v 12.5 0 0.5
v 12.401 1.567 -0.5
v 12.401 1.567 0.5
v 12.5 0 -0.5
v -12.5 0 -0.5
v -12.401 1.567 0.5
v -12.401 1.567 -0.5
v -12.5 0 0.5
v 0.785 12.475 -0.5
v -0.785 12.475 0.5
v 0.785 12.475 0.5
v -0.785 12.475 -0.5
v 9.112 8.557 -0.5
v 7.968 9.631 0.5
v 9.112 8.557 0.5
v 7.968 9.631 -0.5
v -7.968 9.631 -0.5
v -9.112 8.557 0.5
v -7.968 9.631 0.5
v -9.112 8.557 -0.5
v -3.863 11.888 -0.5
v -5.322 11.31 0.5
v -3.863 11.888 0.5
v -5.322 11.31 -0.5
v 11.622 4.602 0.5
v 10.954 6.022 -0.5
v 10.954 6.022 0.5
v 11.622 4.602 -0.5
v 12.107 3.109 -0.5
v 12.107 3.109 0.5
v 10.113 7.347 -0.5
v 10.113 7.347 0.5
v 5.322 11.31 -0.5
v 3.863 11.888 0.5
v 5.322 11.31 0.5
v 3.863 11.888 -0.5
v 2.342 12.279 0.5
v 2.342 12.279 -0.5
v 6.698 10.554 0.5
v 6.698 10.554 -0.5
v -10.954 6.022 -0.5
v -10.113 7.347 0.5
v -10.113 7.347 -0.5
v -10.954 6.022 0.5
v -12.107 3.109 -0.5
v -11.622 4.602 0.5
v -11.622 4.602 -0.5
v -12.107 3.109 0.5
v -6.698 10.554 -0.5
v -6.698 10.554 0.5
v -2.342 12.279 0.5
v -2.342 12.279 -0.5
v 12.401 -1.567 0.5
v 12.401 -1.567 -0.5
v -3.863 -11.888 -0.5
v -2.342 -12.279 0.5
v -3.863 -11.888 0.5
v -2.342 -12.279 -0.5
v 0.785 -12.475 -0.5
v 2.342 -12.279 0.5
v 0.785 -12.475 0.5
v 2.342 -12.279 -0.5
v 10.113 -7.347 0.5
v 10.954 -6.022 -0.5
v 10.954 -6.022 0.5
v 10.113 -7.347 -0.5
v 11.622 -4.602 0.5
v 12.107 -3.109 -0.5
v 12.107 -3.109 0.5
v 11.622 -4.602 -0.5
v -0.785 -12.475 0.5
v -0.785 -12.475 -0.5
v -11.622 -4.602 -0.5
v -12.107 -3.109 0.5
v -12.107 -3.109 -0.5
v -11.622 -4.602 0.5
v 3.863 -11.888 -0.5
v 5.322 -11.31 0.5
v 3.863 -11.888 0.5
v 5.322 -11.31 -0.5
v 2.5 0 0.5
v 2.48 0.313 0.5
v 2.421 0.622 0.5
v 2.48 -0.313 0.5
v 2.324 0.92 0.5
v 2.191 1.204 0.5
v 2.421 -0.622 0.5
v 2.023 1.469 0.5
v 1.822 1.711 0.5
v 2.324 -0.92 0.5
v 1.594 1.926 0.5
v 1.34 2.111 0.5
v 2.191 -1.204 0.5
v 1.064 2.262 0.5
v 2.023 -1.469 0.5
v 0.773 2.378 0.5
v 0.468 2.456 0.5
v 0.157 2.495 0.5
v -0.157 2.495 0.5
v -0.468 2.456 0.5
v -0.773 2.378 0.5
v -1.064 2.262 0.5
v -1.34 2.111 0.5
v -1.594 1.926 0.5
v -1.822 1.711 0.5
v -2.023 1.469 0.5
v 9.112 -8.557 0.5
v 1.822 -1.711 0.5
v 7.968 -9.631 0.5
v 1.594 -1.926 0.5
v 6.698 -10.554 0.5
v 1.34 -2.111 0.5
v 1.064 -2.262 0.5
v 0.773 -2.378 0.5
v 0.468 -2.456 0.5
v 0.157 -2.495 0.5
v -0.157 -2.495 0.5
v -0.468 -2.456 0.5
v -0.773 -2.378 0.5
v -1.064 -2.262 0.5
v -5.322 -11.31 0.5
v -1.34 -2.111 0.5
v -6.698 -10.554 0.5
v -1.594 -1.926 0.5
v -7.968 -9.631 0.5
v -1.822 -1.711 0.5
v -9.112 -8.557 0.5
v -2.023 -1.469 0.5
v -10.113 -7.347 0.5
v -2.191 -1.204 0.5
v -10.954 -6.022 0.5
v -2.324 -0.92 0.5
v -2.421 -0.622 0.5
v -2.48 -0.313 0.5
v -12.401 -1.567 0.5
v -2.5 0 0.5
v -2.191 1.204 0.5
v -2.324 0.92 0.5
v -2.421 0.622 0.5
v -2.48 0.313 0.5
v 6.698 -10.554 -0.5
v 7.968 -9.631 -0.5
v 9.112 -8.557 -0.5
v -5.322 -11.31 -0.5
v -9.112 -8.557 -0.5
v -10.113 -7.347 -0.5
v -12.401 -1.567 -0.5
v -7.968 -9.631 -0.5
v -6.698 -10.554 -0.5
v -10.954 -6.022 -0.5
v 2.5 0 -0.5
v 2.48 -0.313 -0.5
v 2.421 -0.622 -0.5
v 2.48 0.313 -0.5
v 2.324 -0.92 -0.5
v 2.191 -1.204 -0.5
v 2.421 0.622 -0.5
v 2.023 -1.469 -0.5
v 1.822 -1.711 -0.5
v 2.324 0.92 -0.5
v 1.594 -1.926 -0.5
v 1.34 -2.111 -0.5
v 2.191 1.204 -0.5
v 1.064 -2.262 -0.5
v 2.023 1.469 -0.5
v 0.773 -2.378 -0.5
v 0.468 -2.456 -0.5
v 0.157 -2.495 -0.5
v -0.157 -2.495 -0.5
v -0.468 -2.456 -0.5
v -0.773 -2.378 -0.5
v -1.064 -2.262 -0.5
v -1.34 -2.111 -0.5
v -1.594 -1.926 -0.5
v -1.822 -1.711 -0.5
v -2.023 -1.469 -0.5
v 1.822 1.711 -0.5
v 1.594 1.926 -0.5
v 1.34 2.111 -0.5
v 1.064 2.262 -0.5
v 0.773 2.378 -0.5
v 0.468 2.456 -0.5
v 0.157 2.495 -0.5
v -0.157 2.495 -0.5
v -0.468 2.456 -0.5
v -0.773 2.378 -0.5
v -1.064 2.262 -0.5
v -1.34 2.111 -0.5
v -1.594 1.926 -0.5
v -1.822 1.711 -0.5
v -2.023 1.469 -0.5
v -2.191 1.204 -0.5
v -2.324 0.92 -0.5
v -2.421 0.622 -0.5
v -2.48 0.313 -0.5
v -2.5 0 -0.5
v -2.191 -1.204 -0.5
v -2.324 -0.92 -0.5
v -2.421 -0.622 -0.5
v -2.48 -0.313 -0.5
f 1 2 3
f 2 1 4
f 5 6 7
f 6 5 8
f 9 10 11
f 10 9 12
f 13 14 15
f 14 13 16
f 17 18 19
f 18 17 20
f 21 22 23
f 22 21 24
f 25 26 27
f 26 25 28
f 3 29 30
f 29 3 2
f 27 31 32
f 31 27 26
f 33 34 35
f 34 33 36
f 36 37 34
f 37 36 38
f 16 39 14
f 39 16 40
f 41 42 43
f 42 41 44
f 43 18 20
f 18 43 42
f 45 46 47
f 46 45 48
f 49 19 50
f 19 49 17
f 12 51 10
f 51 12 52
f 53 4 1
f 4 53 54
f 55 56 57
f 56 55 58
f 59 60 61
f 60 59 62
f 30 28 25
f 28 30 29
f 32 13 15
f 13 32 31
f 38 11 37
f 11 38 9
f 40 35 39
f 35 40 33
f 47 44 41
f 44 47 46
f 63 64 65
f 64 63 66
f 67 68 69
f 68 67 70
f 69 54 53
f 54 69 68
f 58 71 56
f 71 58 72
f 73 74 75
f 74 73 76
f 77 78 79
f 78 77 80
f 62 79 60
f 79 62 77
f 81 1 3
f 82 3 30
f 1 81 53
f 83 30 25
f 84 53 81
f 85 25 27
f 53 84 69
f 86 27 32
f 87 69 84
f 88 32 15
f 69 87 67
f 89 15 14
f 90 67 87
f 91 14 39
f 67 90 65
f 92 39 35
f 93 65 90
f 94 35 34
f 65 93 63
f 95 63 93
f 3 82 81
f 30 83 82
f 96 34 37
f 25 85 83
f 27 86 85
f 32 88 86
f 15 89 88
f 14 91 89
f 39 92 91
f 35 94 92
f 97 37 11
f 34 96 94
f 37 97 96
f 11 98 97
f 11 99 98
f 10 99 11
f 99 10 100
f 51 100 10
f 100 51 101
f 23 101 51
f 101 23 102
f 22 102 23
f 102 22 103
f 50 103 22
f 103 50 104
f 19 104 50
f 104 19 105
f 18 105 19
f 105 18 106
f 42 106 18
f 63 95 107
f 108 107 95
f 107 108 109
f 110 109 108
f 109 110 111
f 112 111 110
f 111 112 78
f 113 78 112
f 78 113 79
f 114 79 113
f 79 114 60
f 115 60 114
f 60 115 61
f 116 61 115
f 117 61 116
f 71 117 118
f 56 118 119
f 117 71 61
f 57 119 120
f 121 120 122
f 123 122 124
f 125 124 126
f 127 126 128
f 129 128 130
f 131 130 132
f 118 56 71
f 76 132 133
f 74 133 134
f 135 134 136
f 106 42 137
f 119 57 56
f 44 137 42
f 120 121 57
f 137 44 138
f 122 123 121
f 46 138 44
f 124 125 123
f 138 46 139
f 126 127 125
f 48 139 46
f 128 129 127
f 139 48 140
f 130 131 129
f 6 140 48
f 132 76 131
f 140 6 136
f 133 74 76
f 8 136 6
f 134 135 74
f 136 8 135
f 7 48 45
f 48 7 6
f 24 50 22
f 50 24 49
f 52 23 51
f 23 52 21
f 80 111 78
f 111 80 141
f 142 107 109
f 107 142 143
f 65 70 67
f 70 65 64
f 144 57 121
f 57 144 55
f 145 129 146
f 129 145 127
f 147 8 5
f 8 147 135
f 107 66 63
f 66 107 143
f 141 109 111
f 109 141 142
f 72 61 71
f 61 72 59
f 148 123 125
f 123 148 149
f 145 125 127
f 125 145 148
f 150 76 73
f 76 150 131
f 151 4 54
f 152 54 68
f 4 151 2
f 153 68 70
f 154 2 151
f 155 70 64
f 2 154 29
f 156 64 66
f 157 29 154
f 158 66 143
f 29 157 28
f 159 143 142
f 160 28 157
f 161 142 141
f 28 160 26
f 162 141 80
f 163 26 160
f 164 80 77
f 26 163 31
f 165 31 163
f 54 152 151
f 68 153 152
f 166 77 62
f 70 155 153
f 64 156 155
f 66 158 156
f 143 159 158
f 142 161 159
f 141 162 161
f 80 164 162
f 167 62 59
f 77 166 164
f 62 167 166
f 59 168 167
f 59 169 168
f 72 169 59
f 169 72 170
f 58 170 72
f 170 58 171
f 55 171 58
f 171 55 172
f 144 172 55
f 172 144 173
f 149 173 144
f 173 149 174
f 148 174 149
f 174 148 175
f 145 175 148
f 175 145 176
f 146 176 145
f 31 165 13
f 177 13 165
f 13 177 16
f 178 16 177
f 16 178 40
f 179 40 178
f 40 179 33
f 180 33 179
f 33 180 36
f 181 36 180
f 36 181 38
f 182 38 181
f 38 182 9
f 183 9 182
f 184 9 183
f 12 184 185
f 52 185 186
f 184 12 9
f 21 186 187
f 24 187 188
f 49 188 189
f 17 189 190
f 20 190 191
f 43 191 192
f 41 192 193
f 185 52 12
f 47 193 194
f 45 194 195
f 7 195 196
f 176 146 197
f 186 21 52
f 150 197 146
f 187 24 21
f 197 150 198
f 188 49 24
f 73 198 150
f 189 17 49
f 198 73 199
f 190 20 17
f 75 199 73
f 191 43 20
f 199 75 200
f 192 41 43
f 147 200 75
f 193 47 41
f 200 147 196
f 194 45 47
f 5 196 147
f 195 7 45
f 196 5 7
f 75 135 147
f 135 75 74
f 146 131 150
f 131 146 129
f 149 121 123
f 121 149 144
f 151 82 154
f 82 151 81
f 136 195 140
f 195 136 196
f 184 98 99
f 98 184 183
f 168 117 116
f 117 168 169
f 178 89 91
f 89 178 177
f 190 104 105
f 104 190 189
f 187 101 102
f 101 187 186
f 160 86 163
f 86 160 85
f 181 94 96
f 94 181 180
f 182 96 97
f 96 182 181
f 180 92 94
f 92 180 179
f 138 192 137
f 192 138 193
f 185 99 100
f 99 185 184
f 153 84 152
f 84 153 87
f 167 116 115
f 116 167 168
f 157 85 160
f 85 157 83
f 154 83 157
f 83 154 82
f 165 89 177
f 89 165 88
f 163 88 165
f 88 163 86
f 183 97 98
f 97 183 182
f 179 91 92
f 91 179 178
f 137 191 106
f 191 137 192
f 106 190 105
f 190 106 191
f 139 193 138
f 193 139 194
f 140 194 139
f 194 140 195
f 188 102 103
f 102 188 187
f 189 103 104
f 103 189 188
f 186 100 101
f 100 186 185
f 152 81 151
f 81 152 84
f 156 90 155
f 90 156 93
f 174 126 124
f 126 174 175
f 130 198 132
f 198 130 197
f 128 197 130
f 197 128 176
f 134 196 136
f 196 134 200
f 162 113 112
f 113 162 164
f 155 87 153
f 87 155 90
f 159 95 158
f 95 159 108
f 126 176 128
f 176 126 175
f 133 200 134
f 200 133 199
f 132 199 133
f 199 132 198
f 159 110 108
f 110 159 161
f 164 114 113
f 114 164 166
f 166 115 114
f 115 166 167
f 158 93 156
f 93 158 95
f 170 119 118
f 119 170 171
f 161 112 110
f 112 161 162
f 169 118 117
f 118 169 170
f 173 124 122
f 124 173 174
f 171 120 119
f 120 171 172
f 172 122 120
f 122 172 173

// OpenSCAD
$fn = 50;


difference() {
	union() {
		translate(v = [0, 0, -0.5000000000]) {
			cylinder(h = 1, r = 12.5000000000);
		}
	}
	union() {
		translate(v = [0, 0, -100.0000000000]) {
			cylinder(h = 200, r = 2.5000000000);
		}
	}
}
